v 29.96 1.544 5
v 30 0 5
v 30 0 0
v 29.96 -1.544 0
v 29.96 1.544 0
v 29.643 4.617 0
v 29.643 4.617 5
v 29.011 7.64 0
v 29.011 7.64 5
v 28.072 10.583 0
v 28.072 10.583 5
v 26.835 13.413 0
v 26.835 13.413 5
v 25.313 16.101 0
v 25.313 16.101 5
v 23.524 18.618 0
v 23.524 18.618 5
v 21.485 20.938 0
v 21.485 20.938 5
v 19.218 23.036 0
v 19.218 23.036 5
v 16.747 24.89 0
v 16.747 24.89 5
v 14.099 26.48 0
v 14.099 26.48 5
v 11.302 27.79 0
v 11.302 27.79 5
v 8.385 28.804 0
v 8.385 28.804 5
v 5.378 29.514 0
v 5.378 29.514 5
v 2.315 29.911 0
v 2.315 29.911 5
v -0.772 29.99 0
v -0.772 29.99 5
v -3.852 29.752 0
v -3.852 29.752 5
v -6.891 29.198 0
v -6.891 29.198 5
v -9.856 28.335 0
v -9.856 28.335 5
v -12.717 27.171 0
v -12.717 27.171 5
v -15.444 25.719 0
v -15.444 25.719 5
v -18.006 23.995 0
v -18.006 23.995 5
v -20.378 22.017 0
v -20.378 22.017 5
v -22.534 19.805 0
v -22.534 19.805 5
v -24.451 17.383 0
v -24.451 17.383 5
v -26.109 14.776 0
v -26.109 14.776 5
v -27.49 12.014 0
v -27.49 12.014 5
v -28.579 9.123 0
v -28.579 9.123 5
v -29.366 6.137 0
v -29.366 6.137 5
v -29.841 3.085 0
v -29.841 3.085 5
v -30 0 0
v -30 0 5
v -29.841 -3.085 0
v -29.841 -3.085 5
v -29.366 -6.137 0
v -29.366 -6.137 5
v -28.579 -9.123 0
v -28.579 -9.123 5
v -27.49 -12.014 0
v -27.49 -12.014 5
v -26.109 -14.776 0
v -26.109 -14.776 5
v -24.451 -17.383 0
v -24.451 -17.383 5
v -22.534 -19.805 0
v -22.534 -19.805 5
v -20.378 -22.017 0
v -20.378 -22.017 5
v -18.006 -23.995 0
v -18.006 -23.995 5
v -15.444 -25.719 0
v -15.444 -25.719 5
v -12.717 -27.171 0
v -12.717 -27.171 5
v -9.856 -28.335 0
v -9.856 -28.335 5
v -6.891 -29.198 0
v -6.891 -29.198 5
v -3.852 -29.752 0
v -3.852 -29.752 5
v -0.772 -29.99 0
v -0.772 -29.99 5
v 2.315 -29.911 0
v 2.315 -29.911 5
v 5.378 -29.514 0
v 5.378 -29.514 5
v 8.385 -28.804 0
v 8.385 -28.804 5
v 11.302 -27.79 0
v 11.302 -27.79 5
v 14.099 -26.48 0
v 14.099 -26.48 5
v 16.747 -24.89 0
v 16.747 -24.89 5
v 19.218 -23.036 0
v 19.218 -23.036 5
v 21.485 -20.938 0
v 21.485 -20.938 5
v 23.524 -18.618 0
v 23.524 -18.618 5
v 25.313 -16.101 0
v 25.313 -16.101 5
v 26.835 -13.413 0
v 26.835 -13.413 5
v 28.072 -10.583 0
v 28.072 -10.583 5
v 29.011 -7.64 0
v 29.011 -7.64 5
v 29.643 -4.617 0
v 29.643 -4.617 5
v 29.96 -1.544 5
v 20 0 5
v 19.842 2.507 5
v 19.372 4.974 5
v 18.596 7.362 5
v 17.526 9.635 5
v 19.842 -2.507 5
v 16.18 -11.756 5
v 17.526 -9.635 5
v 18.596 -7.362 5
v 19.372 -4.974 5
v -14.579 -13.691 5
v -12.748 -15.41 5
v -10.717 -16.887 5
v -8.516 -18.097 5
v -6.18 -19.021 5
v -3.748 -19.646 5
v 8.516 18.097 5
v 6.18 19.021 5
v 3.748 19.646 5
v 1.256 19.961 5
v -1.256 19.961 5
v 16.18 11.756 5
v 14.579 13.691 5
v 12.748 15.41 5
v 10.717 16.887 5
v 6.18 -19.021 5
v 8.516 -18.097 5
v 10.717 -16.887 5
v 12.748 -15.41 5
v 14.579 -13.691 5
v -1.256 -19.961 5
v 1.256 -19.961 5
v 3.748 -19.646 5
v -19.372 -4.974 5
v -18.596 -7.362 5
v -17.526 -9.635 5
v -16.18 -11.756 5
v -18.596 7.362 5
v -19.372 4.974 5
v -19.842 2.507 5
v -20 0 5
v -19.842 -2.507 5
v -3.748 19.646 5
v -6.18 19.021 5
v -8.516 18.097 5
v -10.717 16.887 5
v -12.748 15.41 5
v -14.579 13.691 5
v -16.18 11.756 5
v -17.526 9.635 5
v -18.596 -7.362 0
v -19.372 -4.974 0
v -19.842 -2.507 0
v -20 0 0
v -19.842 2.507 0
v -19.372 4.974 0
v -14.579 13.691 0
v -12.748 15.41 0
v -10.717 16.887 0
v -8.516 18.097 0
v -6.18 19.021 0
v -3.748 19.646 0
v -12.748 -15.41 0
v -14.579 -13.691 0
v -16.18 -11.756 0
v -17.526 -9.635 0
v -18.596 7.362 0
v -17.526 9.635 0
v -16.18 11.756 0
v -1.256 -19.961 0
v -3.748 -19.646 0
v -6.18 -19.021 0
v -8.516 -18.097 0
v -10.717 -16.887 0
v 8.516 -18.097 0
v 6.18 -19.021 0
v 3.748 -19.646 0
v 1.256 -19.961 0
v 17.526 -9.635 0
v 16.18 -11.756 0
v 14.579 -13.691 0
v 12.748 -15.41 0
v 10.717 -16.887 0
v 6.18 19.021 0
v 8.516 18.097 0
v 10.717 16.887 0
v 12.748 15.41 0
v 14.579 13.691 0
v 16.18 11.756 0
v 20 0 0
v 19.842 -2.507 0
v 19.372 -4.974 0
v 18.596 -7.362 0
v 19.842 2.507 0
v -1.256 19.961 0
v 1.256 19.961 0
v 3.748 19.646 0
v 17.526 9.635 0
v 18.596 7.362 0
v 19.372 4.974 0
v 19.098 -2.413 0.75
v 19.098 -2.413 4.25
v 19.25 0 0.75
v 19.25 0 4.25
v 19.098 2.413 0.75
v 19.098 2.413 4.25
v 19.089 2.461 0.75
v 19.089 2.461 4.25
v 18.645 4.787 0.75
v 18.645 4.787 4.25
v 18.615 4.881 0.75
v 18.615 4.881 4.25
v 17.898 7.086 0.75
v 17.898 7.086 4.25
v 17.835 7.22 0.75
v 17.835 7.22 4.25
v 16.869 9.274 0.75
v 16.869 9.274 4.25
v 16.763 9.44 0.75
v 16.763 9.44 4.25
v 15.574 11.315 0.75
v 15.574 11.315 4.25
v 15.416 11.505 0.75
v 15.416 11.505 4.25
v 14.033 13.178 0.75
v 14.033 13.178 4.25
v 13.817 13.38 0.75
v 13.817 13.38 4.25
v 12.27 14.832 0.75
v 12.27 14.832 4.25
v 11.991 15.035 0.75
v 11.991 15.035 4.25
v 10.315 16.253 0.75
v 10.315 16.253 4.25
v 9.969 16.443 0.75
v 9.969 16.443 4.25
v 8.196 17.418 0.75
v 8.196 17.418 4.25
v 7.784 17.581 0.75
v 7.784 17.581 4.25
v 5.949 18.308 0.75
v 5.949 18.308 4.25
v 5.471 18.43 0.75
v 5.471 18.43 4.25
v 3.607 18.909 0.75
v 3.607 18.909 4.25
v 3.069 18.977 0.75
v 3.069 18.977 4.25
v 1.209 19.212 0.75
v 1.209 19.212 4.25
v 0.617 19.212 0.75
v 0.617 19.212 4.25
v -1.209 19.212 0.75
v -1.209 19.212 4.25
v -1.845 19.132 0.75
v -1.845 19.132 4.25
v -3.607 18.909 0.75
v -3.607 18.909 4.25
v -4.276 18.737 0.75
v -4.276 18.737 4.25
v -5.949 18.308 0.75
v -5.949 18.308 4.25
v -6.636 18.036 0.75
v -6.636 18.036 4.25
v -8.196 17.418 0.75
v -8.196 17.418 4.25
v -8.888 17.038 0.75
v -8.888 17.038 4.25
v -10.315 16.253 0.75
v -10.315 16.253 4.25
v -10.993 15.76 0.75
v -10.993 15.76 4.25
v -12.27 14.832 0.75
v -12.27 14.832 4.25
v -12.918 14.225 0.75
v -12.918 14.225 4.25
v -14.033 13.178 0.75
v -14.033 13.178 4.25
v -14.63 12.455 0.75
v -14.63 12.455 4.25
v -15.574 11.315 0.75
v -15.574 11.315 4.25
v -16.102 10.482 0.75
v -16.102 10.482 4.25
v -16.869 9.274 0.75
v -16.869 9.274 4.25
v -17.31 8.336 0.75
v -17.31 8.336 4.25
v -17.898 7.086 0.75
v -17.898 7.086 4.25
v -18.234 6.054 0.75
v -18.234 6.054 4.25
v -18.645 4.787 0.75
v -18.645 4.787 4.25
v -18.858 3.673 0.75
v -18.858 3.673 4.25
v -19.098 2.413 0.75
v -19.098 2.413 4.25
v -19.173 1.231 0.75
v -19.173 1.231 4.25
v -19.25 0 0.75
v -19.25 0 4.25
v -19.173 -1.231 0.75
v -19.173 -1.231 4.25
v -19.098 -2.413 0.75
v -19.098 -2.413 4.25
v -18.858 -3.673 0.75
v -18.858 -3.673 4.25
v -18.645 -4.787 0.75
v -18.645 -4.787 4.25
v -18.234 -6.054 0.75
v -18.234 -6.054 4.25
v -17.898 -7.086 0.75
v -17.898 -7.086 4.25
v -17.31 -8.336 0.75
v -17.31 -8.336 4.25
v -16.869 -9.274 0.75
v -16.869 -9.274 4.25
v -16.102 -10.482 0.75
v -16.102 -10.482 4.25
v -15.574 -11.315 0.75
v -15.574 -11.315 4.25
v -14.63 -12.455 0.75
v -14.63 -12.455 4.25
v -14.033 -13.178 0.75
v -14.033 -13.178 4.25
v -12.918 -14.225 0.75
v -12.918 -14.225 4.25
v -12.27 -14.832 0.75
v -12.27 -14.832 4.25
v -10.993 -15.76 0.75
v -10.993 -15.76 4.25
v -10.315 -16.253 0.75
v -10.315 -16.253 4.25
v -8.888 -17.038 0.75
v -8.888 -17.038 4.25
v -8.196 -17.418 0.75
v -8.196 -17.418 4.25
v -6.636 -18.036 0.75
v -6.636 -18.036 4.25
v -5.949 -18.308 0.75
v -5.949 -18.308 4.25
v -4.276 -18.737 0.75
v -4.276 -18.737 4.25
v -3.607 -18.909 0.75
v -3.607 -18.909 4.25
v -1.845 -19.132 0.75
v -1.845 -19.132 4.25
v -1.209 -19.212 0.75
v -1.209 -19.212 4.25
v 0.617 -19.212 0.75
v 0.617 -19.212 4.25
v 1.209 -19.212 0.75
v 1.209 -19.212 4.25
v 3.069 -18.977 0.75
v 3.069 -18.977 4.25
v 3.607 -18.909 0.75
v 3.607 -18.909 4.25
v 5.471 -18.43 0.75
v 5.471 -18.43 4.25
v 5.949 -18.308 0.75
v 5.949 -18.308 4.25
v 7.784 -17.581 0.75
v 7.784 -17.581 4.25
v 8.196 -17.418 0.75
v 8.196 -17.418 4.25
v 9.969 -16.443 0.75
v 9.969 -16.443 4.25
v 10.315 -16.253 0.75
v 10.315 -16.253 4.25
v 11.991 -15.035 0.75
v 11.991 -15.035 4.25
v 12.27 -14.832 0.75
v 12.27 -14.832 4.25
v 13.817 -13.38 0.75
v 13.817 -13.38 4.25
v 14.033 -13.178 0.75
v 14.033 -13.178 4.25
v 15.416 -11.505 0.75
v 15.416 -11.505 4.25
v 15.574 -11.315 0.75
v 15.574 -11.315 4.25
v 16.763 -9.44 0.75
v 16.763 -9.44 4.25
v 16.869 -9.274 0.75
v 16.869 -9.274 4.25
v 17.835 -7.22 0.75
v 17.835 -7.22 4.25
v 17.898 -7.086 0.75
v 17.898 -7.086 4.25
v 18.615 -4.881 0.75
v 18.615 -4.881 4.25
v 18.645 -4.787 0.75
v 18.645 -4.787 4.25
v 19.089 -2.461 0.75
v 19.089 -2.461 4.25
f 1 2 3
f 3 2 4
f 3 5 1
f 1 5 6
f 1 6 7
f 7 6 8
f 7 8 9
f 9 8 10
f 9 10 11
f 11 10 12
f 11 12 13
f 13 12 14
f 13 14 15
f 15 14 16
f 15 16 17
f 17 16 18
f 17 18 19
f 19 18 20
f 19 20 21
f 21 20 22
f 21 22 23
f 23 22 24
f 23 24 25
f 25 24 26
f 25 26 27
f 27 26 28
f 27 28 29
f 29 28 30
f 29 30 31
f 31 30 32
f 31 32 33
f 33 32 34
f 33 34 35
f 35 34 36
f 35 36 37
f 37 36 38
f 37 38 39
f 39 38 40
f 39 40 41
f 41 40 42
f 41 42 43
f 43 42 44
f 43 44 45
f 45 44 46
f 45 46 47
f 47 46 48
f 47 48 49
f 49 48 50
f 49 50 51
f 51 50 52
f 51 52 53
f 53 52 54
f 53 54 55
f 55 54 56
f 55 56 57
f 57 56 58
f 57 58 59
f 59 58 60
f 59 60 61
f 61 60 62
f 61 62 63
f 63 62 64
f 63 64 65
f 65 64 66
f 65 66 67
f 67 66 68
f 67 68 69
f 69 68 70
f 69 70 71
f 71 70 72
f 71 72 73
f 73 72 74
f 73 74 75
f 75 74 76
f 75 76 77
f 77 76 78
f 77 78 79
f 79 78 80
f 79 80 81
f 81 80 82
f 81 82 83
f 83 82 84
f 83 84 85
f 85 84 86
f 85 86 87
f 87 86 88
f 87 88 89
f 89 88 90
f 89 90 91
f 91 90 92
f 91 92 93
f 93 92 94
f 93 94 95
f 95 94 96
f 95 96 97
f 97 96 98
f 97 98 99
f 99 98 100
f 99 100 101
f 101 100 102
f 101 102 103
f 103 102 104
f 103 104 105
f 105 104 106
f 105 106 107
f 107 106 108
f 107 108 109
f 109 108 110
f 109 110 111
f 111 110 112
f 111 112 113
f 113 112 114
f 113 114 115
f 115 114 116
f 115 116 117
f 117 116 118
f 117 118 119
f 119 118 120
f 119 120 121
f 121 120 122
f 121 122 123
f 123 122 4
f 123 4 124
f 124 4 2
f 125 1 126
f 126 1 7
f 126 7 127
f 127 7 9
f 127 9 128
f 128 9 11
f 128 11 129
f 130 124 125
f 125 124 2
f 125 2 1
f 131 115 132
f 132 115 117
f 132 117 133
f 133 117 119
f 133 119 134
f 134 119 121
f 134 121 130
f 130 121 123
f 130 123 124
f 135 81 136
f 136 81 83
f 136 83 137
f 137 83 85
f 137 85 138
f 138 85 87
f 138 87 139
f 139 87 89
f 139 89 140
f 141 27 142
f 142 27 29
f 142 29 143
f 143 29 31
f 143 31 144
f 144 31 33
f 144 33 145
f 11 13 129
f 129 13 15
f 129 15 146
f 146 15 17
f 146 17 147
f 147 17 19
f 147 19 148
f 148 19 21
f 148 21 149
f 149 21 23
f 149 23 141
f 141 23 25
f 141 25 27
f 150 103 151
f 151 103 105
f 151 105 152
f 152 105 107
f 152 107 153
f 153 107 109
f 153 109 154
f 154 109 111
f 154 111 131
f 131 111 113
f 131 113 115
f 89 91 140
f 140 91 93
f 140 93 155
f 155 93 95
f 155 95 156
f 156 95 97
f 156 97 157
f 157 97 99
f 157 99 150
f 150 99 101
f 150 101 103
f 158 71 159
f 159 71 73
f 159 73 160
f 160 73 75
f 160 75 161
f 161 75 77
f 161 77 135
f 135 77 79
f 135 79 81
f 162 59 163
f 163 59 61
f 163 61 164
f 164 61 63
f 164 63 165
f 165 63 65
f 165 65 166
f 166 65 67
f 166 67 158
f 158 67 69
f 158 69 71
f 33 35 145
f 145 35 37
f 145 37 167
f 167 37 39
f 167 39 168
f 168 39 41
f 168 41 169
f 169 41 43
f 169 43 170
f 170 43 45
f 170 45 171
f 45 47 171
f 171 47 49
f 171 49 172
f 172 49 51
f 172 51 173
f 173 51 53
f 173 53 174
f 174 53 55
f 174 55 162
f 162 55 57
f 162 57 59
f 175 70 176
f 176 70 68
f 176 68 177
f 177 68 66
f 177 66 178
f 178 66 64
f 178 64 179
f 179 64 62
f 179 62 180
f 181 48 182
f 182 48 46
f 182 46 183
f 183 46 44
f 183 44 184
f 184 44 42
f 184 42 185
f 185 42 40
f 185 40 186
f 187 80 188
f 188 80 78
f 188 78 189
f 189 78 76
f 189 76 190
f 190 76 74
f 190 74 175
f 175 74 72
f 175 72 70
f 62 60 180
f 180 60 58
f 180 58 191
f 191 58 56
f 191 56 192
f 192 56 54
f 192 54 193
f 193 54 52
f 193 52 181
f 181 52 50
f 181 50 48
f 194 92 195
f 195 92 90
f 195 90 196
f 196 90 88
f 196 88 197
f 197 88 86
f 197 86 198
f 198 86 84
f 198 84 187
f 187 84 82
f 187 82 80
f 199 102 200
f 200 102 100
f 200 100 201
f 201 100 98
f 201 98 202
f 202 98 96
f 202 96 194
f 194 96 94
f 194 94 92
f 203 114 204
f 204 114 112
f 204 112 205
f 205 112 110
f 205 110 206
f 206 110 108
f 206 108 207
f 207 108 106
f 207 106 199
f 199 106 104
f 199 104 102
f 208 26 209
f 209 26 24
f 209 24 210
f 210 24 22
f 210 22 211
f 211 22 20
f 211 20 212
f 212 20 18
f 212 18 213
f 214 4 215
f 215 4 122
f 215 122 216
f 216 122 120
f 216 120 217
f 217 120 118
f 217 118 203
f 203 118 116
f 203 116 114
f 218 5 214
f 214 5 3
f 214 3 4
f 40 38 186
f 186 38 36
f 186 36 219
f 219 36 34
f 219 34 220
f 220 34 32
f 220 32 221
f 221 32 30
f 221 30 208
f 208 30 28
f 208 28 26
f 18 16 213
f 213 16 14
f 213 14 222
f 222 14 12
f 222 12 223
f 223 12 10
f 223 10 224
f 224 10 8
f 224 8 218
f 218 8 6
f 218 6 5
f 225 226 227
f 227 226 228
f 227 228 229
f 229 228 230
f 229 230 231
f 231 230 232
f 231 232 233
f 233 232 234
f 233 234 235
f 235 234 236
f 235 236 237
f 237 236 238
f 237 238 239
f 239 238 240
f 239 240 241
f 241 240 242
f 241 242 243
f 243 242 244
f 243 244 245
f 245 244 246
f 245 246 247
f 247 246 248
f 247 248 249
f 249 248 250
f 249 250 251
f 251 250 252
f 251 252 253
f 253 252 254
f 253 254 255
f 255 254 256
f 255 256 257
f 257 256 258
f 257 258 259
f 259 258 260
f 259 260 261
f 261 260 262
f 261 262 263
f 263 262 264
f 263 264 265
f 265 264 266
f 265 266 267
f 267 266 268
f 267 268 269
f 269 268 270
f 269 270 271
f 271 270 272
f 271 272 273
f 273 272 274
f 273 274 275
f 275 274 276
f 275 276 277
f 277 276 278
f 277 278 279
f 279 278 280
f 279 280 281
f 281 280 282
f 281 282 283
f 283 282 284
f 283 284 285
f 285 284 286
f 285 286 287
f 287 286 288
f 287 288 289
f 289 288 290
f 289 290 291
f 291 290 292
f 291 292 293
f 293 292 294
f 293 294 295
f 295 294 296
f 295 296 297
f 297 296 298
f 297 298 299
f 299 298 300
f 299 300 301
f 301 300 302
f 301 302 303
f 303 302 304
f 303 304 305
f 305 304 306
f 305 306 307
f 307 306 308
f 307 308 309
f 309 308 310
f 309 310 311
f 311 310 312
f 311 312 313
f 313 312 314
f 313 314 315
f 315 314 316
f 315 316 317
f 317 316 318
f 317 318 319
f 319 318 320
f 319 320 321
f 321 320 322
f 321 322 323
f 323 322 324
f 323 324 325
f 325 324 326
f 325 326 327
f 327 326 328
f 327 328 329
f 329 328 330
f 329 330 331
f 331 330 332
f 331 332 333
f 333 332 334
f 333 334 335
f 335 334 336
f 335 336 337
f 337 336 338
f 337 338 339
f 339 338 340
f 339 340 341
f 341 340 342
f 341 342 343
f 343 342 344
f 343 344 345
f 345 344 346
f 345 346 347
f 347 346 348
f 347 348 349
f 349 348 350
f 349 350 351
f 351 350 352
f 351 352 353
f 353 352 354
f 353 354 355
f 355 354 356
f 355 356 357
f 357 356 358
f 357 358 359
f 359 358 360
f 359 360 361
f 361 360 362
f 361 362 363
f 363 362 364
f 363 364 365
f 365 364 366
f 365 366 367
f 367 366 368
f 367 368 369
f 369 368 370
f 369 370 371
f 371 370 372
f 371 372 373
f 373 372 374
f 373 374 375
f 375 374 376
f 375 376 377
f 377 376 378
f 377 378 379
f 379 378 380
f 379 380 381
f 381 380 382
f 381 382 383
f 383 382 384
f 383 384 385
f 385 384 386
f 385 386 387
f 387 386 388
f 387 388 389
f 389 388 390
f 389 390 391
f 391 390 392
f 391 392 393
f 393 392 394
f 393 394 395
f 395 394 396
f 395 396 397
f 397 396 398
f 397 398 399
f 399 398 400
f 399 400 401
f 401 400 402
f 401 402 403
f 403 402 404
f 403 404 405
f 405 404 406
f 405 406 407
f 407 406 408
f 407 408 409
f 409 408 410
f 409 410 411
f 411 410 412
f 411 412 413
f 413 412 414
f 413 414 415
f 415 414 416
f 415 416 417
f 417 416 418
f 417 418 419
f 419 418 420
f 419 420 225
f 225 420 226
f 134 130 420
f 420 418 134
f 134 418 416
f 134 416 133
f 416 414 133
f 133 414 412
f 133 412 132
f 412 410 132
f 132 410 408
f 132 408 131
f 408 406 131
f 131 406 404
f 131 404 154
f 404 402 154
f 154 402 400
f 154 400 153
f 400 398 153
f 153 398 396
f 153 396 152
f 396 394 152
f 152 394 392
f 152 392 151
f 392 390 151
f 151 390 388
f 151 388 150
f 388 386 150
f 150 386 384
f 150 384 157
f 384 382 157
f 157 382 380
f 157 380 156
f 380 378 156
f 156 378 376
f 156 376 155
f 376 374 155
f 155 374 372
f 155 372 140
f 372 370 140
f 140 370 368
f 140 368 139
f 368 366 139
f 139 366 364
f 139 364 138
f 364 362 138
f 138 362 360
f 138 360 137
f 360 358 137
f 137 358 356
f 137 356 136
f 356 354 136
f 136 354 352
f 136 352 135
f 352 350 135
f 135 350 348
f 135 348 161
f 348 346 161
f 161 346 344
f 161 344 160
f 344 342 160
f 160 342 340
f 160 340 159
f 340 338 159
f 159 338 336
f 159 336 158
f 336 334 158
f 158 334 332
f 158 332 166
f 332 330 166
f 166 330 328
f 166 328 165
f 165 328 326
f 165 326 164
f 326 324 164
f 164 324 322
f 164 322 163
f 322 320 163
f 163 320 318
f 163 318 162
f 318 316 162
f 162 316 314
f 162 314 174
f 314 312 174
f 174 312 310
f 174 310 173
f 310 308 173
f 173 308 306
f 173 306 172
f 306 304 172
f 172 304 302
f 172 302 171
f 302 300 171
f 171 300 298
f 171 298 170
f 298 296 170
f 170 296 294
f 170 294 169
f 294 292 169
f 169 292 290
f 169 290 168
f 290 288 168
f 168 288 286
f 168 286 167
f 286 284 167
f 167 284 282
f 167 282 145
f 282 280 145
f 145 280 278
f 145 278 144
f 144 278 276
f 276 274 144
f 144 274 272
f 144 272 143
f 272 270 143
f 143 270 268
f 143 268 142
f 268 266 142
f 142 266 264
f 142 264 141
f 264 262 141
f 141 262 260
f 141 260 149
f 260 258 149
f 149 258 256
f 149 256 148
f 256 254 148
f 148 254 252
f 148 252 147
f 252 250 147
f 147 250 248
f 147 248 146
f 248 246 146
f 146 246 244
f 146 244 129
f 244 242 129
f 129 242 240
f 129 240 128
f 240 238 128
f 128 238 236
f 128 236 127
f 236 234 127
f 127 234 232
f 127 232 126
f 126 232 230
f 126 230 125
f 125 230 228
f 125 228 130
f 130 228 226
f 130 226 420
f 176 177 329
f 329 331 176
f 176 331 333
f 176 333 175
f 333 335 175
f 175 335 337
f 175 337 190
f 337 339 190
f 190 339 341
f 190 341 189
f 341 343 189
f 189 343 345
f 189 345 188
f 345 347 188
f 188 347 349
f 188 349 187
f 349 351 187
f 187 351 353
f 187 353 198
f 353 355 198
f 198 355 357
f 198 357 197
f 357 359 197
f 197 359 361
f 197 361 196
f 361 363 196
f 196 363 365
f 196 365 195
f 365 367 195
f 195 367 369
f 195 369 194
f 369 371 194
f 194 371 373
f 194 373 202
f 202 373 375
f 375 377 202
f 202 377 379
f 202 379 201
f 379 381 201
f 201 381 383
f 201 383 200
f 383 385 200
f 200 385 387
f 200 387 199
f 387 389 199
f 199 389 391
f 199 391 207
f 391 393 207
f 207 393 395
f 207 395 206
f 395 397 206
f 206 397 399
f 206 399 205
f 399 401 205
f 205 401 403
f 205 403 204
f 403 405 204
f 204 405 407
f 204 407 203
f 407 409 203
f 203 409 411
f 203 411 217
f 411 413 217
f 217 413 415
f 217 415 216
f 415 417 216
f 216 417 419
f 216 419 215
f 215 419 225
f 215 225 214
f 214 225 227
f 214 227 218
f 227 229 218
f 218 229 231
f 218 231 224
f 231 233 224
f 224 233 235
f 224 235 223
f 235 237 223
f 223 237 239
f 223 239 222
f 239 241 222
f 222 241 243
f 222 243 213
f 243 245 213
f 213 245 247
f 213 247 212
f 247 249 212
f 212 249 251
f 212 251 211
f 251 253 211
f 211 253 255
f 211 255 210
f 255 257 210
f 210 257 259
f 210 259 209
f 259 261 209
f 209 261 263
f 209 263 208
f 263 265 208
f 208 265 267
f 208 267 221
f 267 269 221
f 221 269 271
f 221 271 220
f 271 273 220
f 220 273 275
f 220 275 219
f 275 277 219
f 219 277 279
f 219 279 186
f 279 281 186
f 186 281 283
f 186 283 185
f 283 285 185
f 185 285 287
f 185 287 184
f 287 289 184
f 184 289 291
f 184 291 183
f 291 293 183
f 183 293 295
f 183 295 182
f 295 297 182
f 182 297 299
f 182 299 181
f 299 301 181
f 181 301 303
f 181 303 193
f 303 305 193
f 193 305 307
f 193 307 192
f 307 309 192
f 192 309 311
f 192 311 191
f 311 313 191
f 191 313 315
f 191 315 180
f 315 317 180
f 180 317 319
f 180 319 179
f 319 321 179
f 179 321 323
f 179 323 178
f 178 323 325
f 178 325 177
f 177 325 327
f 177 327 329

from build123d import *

# Parameters (mm, degrees)
GUARD_BASE_R     = 30
GUARD_DEPTH      = 5
AXLE_HOLE_BASE_R = 19.25
AXLE_HOLE_DEPTH  = 6


with BuildPart() as part:
    # Guard base → Guard (new body)
    with BuildSketch(Plane.XY):
        Circle(GUARD_BASE_R)
    extrude(amount=GUARD_DEPTH)

    # Axle hole base → Axle hole (cut, through all)
    with BuildSketch(Plane.XY.offset(5)):
        Circle(AXLE_HOLE_BASE_R)
    extrude(amount=-AXLE_HOLE_DEPTH, mode=Mode.SUBTRACT)

    # Mate ring room base → Mate ring room (revolve, cut)
    with BuildSketch(Plane(origin=(0, 0, 0), x_dir=(1, 0, 0), z_dir=(0, 1, 0))):
        Polygon((19.25, -5), (20, -5), (19.25, -4.25), align=None)
        Polygon((19.25, 0), (20, 0), (19.25, -0.75), align=None)
    revolve(axis=Axis((0, 0, 0), (0, 0, -1)), mode=Mode.SUBTRACT)


solid = part.part
